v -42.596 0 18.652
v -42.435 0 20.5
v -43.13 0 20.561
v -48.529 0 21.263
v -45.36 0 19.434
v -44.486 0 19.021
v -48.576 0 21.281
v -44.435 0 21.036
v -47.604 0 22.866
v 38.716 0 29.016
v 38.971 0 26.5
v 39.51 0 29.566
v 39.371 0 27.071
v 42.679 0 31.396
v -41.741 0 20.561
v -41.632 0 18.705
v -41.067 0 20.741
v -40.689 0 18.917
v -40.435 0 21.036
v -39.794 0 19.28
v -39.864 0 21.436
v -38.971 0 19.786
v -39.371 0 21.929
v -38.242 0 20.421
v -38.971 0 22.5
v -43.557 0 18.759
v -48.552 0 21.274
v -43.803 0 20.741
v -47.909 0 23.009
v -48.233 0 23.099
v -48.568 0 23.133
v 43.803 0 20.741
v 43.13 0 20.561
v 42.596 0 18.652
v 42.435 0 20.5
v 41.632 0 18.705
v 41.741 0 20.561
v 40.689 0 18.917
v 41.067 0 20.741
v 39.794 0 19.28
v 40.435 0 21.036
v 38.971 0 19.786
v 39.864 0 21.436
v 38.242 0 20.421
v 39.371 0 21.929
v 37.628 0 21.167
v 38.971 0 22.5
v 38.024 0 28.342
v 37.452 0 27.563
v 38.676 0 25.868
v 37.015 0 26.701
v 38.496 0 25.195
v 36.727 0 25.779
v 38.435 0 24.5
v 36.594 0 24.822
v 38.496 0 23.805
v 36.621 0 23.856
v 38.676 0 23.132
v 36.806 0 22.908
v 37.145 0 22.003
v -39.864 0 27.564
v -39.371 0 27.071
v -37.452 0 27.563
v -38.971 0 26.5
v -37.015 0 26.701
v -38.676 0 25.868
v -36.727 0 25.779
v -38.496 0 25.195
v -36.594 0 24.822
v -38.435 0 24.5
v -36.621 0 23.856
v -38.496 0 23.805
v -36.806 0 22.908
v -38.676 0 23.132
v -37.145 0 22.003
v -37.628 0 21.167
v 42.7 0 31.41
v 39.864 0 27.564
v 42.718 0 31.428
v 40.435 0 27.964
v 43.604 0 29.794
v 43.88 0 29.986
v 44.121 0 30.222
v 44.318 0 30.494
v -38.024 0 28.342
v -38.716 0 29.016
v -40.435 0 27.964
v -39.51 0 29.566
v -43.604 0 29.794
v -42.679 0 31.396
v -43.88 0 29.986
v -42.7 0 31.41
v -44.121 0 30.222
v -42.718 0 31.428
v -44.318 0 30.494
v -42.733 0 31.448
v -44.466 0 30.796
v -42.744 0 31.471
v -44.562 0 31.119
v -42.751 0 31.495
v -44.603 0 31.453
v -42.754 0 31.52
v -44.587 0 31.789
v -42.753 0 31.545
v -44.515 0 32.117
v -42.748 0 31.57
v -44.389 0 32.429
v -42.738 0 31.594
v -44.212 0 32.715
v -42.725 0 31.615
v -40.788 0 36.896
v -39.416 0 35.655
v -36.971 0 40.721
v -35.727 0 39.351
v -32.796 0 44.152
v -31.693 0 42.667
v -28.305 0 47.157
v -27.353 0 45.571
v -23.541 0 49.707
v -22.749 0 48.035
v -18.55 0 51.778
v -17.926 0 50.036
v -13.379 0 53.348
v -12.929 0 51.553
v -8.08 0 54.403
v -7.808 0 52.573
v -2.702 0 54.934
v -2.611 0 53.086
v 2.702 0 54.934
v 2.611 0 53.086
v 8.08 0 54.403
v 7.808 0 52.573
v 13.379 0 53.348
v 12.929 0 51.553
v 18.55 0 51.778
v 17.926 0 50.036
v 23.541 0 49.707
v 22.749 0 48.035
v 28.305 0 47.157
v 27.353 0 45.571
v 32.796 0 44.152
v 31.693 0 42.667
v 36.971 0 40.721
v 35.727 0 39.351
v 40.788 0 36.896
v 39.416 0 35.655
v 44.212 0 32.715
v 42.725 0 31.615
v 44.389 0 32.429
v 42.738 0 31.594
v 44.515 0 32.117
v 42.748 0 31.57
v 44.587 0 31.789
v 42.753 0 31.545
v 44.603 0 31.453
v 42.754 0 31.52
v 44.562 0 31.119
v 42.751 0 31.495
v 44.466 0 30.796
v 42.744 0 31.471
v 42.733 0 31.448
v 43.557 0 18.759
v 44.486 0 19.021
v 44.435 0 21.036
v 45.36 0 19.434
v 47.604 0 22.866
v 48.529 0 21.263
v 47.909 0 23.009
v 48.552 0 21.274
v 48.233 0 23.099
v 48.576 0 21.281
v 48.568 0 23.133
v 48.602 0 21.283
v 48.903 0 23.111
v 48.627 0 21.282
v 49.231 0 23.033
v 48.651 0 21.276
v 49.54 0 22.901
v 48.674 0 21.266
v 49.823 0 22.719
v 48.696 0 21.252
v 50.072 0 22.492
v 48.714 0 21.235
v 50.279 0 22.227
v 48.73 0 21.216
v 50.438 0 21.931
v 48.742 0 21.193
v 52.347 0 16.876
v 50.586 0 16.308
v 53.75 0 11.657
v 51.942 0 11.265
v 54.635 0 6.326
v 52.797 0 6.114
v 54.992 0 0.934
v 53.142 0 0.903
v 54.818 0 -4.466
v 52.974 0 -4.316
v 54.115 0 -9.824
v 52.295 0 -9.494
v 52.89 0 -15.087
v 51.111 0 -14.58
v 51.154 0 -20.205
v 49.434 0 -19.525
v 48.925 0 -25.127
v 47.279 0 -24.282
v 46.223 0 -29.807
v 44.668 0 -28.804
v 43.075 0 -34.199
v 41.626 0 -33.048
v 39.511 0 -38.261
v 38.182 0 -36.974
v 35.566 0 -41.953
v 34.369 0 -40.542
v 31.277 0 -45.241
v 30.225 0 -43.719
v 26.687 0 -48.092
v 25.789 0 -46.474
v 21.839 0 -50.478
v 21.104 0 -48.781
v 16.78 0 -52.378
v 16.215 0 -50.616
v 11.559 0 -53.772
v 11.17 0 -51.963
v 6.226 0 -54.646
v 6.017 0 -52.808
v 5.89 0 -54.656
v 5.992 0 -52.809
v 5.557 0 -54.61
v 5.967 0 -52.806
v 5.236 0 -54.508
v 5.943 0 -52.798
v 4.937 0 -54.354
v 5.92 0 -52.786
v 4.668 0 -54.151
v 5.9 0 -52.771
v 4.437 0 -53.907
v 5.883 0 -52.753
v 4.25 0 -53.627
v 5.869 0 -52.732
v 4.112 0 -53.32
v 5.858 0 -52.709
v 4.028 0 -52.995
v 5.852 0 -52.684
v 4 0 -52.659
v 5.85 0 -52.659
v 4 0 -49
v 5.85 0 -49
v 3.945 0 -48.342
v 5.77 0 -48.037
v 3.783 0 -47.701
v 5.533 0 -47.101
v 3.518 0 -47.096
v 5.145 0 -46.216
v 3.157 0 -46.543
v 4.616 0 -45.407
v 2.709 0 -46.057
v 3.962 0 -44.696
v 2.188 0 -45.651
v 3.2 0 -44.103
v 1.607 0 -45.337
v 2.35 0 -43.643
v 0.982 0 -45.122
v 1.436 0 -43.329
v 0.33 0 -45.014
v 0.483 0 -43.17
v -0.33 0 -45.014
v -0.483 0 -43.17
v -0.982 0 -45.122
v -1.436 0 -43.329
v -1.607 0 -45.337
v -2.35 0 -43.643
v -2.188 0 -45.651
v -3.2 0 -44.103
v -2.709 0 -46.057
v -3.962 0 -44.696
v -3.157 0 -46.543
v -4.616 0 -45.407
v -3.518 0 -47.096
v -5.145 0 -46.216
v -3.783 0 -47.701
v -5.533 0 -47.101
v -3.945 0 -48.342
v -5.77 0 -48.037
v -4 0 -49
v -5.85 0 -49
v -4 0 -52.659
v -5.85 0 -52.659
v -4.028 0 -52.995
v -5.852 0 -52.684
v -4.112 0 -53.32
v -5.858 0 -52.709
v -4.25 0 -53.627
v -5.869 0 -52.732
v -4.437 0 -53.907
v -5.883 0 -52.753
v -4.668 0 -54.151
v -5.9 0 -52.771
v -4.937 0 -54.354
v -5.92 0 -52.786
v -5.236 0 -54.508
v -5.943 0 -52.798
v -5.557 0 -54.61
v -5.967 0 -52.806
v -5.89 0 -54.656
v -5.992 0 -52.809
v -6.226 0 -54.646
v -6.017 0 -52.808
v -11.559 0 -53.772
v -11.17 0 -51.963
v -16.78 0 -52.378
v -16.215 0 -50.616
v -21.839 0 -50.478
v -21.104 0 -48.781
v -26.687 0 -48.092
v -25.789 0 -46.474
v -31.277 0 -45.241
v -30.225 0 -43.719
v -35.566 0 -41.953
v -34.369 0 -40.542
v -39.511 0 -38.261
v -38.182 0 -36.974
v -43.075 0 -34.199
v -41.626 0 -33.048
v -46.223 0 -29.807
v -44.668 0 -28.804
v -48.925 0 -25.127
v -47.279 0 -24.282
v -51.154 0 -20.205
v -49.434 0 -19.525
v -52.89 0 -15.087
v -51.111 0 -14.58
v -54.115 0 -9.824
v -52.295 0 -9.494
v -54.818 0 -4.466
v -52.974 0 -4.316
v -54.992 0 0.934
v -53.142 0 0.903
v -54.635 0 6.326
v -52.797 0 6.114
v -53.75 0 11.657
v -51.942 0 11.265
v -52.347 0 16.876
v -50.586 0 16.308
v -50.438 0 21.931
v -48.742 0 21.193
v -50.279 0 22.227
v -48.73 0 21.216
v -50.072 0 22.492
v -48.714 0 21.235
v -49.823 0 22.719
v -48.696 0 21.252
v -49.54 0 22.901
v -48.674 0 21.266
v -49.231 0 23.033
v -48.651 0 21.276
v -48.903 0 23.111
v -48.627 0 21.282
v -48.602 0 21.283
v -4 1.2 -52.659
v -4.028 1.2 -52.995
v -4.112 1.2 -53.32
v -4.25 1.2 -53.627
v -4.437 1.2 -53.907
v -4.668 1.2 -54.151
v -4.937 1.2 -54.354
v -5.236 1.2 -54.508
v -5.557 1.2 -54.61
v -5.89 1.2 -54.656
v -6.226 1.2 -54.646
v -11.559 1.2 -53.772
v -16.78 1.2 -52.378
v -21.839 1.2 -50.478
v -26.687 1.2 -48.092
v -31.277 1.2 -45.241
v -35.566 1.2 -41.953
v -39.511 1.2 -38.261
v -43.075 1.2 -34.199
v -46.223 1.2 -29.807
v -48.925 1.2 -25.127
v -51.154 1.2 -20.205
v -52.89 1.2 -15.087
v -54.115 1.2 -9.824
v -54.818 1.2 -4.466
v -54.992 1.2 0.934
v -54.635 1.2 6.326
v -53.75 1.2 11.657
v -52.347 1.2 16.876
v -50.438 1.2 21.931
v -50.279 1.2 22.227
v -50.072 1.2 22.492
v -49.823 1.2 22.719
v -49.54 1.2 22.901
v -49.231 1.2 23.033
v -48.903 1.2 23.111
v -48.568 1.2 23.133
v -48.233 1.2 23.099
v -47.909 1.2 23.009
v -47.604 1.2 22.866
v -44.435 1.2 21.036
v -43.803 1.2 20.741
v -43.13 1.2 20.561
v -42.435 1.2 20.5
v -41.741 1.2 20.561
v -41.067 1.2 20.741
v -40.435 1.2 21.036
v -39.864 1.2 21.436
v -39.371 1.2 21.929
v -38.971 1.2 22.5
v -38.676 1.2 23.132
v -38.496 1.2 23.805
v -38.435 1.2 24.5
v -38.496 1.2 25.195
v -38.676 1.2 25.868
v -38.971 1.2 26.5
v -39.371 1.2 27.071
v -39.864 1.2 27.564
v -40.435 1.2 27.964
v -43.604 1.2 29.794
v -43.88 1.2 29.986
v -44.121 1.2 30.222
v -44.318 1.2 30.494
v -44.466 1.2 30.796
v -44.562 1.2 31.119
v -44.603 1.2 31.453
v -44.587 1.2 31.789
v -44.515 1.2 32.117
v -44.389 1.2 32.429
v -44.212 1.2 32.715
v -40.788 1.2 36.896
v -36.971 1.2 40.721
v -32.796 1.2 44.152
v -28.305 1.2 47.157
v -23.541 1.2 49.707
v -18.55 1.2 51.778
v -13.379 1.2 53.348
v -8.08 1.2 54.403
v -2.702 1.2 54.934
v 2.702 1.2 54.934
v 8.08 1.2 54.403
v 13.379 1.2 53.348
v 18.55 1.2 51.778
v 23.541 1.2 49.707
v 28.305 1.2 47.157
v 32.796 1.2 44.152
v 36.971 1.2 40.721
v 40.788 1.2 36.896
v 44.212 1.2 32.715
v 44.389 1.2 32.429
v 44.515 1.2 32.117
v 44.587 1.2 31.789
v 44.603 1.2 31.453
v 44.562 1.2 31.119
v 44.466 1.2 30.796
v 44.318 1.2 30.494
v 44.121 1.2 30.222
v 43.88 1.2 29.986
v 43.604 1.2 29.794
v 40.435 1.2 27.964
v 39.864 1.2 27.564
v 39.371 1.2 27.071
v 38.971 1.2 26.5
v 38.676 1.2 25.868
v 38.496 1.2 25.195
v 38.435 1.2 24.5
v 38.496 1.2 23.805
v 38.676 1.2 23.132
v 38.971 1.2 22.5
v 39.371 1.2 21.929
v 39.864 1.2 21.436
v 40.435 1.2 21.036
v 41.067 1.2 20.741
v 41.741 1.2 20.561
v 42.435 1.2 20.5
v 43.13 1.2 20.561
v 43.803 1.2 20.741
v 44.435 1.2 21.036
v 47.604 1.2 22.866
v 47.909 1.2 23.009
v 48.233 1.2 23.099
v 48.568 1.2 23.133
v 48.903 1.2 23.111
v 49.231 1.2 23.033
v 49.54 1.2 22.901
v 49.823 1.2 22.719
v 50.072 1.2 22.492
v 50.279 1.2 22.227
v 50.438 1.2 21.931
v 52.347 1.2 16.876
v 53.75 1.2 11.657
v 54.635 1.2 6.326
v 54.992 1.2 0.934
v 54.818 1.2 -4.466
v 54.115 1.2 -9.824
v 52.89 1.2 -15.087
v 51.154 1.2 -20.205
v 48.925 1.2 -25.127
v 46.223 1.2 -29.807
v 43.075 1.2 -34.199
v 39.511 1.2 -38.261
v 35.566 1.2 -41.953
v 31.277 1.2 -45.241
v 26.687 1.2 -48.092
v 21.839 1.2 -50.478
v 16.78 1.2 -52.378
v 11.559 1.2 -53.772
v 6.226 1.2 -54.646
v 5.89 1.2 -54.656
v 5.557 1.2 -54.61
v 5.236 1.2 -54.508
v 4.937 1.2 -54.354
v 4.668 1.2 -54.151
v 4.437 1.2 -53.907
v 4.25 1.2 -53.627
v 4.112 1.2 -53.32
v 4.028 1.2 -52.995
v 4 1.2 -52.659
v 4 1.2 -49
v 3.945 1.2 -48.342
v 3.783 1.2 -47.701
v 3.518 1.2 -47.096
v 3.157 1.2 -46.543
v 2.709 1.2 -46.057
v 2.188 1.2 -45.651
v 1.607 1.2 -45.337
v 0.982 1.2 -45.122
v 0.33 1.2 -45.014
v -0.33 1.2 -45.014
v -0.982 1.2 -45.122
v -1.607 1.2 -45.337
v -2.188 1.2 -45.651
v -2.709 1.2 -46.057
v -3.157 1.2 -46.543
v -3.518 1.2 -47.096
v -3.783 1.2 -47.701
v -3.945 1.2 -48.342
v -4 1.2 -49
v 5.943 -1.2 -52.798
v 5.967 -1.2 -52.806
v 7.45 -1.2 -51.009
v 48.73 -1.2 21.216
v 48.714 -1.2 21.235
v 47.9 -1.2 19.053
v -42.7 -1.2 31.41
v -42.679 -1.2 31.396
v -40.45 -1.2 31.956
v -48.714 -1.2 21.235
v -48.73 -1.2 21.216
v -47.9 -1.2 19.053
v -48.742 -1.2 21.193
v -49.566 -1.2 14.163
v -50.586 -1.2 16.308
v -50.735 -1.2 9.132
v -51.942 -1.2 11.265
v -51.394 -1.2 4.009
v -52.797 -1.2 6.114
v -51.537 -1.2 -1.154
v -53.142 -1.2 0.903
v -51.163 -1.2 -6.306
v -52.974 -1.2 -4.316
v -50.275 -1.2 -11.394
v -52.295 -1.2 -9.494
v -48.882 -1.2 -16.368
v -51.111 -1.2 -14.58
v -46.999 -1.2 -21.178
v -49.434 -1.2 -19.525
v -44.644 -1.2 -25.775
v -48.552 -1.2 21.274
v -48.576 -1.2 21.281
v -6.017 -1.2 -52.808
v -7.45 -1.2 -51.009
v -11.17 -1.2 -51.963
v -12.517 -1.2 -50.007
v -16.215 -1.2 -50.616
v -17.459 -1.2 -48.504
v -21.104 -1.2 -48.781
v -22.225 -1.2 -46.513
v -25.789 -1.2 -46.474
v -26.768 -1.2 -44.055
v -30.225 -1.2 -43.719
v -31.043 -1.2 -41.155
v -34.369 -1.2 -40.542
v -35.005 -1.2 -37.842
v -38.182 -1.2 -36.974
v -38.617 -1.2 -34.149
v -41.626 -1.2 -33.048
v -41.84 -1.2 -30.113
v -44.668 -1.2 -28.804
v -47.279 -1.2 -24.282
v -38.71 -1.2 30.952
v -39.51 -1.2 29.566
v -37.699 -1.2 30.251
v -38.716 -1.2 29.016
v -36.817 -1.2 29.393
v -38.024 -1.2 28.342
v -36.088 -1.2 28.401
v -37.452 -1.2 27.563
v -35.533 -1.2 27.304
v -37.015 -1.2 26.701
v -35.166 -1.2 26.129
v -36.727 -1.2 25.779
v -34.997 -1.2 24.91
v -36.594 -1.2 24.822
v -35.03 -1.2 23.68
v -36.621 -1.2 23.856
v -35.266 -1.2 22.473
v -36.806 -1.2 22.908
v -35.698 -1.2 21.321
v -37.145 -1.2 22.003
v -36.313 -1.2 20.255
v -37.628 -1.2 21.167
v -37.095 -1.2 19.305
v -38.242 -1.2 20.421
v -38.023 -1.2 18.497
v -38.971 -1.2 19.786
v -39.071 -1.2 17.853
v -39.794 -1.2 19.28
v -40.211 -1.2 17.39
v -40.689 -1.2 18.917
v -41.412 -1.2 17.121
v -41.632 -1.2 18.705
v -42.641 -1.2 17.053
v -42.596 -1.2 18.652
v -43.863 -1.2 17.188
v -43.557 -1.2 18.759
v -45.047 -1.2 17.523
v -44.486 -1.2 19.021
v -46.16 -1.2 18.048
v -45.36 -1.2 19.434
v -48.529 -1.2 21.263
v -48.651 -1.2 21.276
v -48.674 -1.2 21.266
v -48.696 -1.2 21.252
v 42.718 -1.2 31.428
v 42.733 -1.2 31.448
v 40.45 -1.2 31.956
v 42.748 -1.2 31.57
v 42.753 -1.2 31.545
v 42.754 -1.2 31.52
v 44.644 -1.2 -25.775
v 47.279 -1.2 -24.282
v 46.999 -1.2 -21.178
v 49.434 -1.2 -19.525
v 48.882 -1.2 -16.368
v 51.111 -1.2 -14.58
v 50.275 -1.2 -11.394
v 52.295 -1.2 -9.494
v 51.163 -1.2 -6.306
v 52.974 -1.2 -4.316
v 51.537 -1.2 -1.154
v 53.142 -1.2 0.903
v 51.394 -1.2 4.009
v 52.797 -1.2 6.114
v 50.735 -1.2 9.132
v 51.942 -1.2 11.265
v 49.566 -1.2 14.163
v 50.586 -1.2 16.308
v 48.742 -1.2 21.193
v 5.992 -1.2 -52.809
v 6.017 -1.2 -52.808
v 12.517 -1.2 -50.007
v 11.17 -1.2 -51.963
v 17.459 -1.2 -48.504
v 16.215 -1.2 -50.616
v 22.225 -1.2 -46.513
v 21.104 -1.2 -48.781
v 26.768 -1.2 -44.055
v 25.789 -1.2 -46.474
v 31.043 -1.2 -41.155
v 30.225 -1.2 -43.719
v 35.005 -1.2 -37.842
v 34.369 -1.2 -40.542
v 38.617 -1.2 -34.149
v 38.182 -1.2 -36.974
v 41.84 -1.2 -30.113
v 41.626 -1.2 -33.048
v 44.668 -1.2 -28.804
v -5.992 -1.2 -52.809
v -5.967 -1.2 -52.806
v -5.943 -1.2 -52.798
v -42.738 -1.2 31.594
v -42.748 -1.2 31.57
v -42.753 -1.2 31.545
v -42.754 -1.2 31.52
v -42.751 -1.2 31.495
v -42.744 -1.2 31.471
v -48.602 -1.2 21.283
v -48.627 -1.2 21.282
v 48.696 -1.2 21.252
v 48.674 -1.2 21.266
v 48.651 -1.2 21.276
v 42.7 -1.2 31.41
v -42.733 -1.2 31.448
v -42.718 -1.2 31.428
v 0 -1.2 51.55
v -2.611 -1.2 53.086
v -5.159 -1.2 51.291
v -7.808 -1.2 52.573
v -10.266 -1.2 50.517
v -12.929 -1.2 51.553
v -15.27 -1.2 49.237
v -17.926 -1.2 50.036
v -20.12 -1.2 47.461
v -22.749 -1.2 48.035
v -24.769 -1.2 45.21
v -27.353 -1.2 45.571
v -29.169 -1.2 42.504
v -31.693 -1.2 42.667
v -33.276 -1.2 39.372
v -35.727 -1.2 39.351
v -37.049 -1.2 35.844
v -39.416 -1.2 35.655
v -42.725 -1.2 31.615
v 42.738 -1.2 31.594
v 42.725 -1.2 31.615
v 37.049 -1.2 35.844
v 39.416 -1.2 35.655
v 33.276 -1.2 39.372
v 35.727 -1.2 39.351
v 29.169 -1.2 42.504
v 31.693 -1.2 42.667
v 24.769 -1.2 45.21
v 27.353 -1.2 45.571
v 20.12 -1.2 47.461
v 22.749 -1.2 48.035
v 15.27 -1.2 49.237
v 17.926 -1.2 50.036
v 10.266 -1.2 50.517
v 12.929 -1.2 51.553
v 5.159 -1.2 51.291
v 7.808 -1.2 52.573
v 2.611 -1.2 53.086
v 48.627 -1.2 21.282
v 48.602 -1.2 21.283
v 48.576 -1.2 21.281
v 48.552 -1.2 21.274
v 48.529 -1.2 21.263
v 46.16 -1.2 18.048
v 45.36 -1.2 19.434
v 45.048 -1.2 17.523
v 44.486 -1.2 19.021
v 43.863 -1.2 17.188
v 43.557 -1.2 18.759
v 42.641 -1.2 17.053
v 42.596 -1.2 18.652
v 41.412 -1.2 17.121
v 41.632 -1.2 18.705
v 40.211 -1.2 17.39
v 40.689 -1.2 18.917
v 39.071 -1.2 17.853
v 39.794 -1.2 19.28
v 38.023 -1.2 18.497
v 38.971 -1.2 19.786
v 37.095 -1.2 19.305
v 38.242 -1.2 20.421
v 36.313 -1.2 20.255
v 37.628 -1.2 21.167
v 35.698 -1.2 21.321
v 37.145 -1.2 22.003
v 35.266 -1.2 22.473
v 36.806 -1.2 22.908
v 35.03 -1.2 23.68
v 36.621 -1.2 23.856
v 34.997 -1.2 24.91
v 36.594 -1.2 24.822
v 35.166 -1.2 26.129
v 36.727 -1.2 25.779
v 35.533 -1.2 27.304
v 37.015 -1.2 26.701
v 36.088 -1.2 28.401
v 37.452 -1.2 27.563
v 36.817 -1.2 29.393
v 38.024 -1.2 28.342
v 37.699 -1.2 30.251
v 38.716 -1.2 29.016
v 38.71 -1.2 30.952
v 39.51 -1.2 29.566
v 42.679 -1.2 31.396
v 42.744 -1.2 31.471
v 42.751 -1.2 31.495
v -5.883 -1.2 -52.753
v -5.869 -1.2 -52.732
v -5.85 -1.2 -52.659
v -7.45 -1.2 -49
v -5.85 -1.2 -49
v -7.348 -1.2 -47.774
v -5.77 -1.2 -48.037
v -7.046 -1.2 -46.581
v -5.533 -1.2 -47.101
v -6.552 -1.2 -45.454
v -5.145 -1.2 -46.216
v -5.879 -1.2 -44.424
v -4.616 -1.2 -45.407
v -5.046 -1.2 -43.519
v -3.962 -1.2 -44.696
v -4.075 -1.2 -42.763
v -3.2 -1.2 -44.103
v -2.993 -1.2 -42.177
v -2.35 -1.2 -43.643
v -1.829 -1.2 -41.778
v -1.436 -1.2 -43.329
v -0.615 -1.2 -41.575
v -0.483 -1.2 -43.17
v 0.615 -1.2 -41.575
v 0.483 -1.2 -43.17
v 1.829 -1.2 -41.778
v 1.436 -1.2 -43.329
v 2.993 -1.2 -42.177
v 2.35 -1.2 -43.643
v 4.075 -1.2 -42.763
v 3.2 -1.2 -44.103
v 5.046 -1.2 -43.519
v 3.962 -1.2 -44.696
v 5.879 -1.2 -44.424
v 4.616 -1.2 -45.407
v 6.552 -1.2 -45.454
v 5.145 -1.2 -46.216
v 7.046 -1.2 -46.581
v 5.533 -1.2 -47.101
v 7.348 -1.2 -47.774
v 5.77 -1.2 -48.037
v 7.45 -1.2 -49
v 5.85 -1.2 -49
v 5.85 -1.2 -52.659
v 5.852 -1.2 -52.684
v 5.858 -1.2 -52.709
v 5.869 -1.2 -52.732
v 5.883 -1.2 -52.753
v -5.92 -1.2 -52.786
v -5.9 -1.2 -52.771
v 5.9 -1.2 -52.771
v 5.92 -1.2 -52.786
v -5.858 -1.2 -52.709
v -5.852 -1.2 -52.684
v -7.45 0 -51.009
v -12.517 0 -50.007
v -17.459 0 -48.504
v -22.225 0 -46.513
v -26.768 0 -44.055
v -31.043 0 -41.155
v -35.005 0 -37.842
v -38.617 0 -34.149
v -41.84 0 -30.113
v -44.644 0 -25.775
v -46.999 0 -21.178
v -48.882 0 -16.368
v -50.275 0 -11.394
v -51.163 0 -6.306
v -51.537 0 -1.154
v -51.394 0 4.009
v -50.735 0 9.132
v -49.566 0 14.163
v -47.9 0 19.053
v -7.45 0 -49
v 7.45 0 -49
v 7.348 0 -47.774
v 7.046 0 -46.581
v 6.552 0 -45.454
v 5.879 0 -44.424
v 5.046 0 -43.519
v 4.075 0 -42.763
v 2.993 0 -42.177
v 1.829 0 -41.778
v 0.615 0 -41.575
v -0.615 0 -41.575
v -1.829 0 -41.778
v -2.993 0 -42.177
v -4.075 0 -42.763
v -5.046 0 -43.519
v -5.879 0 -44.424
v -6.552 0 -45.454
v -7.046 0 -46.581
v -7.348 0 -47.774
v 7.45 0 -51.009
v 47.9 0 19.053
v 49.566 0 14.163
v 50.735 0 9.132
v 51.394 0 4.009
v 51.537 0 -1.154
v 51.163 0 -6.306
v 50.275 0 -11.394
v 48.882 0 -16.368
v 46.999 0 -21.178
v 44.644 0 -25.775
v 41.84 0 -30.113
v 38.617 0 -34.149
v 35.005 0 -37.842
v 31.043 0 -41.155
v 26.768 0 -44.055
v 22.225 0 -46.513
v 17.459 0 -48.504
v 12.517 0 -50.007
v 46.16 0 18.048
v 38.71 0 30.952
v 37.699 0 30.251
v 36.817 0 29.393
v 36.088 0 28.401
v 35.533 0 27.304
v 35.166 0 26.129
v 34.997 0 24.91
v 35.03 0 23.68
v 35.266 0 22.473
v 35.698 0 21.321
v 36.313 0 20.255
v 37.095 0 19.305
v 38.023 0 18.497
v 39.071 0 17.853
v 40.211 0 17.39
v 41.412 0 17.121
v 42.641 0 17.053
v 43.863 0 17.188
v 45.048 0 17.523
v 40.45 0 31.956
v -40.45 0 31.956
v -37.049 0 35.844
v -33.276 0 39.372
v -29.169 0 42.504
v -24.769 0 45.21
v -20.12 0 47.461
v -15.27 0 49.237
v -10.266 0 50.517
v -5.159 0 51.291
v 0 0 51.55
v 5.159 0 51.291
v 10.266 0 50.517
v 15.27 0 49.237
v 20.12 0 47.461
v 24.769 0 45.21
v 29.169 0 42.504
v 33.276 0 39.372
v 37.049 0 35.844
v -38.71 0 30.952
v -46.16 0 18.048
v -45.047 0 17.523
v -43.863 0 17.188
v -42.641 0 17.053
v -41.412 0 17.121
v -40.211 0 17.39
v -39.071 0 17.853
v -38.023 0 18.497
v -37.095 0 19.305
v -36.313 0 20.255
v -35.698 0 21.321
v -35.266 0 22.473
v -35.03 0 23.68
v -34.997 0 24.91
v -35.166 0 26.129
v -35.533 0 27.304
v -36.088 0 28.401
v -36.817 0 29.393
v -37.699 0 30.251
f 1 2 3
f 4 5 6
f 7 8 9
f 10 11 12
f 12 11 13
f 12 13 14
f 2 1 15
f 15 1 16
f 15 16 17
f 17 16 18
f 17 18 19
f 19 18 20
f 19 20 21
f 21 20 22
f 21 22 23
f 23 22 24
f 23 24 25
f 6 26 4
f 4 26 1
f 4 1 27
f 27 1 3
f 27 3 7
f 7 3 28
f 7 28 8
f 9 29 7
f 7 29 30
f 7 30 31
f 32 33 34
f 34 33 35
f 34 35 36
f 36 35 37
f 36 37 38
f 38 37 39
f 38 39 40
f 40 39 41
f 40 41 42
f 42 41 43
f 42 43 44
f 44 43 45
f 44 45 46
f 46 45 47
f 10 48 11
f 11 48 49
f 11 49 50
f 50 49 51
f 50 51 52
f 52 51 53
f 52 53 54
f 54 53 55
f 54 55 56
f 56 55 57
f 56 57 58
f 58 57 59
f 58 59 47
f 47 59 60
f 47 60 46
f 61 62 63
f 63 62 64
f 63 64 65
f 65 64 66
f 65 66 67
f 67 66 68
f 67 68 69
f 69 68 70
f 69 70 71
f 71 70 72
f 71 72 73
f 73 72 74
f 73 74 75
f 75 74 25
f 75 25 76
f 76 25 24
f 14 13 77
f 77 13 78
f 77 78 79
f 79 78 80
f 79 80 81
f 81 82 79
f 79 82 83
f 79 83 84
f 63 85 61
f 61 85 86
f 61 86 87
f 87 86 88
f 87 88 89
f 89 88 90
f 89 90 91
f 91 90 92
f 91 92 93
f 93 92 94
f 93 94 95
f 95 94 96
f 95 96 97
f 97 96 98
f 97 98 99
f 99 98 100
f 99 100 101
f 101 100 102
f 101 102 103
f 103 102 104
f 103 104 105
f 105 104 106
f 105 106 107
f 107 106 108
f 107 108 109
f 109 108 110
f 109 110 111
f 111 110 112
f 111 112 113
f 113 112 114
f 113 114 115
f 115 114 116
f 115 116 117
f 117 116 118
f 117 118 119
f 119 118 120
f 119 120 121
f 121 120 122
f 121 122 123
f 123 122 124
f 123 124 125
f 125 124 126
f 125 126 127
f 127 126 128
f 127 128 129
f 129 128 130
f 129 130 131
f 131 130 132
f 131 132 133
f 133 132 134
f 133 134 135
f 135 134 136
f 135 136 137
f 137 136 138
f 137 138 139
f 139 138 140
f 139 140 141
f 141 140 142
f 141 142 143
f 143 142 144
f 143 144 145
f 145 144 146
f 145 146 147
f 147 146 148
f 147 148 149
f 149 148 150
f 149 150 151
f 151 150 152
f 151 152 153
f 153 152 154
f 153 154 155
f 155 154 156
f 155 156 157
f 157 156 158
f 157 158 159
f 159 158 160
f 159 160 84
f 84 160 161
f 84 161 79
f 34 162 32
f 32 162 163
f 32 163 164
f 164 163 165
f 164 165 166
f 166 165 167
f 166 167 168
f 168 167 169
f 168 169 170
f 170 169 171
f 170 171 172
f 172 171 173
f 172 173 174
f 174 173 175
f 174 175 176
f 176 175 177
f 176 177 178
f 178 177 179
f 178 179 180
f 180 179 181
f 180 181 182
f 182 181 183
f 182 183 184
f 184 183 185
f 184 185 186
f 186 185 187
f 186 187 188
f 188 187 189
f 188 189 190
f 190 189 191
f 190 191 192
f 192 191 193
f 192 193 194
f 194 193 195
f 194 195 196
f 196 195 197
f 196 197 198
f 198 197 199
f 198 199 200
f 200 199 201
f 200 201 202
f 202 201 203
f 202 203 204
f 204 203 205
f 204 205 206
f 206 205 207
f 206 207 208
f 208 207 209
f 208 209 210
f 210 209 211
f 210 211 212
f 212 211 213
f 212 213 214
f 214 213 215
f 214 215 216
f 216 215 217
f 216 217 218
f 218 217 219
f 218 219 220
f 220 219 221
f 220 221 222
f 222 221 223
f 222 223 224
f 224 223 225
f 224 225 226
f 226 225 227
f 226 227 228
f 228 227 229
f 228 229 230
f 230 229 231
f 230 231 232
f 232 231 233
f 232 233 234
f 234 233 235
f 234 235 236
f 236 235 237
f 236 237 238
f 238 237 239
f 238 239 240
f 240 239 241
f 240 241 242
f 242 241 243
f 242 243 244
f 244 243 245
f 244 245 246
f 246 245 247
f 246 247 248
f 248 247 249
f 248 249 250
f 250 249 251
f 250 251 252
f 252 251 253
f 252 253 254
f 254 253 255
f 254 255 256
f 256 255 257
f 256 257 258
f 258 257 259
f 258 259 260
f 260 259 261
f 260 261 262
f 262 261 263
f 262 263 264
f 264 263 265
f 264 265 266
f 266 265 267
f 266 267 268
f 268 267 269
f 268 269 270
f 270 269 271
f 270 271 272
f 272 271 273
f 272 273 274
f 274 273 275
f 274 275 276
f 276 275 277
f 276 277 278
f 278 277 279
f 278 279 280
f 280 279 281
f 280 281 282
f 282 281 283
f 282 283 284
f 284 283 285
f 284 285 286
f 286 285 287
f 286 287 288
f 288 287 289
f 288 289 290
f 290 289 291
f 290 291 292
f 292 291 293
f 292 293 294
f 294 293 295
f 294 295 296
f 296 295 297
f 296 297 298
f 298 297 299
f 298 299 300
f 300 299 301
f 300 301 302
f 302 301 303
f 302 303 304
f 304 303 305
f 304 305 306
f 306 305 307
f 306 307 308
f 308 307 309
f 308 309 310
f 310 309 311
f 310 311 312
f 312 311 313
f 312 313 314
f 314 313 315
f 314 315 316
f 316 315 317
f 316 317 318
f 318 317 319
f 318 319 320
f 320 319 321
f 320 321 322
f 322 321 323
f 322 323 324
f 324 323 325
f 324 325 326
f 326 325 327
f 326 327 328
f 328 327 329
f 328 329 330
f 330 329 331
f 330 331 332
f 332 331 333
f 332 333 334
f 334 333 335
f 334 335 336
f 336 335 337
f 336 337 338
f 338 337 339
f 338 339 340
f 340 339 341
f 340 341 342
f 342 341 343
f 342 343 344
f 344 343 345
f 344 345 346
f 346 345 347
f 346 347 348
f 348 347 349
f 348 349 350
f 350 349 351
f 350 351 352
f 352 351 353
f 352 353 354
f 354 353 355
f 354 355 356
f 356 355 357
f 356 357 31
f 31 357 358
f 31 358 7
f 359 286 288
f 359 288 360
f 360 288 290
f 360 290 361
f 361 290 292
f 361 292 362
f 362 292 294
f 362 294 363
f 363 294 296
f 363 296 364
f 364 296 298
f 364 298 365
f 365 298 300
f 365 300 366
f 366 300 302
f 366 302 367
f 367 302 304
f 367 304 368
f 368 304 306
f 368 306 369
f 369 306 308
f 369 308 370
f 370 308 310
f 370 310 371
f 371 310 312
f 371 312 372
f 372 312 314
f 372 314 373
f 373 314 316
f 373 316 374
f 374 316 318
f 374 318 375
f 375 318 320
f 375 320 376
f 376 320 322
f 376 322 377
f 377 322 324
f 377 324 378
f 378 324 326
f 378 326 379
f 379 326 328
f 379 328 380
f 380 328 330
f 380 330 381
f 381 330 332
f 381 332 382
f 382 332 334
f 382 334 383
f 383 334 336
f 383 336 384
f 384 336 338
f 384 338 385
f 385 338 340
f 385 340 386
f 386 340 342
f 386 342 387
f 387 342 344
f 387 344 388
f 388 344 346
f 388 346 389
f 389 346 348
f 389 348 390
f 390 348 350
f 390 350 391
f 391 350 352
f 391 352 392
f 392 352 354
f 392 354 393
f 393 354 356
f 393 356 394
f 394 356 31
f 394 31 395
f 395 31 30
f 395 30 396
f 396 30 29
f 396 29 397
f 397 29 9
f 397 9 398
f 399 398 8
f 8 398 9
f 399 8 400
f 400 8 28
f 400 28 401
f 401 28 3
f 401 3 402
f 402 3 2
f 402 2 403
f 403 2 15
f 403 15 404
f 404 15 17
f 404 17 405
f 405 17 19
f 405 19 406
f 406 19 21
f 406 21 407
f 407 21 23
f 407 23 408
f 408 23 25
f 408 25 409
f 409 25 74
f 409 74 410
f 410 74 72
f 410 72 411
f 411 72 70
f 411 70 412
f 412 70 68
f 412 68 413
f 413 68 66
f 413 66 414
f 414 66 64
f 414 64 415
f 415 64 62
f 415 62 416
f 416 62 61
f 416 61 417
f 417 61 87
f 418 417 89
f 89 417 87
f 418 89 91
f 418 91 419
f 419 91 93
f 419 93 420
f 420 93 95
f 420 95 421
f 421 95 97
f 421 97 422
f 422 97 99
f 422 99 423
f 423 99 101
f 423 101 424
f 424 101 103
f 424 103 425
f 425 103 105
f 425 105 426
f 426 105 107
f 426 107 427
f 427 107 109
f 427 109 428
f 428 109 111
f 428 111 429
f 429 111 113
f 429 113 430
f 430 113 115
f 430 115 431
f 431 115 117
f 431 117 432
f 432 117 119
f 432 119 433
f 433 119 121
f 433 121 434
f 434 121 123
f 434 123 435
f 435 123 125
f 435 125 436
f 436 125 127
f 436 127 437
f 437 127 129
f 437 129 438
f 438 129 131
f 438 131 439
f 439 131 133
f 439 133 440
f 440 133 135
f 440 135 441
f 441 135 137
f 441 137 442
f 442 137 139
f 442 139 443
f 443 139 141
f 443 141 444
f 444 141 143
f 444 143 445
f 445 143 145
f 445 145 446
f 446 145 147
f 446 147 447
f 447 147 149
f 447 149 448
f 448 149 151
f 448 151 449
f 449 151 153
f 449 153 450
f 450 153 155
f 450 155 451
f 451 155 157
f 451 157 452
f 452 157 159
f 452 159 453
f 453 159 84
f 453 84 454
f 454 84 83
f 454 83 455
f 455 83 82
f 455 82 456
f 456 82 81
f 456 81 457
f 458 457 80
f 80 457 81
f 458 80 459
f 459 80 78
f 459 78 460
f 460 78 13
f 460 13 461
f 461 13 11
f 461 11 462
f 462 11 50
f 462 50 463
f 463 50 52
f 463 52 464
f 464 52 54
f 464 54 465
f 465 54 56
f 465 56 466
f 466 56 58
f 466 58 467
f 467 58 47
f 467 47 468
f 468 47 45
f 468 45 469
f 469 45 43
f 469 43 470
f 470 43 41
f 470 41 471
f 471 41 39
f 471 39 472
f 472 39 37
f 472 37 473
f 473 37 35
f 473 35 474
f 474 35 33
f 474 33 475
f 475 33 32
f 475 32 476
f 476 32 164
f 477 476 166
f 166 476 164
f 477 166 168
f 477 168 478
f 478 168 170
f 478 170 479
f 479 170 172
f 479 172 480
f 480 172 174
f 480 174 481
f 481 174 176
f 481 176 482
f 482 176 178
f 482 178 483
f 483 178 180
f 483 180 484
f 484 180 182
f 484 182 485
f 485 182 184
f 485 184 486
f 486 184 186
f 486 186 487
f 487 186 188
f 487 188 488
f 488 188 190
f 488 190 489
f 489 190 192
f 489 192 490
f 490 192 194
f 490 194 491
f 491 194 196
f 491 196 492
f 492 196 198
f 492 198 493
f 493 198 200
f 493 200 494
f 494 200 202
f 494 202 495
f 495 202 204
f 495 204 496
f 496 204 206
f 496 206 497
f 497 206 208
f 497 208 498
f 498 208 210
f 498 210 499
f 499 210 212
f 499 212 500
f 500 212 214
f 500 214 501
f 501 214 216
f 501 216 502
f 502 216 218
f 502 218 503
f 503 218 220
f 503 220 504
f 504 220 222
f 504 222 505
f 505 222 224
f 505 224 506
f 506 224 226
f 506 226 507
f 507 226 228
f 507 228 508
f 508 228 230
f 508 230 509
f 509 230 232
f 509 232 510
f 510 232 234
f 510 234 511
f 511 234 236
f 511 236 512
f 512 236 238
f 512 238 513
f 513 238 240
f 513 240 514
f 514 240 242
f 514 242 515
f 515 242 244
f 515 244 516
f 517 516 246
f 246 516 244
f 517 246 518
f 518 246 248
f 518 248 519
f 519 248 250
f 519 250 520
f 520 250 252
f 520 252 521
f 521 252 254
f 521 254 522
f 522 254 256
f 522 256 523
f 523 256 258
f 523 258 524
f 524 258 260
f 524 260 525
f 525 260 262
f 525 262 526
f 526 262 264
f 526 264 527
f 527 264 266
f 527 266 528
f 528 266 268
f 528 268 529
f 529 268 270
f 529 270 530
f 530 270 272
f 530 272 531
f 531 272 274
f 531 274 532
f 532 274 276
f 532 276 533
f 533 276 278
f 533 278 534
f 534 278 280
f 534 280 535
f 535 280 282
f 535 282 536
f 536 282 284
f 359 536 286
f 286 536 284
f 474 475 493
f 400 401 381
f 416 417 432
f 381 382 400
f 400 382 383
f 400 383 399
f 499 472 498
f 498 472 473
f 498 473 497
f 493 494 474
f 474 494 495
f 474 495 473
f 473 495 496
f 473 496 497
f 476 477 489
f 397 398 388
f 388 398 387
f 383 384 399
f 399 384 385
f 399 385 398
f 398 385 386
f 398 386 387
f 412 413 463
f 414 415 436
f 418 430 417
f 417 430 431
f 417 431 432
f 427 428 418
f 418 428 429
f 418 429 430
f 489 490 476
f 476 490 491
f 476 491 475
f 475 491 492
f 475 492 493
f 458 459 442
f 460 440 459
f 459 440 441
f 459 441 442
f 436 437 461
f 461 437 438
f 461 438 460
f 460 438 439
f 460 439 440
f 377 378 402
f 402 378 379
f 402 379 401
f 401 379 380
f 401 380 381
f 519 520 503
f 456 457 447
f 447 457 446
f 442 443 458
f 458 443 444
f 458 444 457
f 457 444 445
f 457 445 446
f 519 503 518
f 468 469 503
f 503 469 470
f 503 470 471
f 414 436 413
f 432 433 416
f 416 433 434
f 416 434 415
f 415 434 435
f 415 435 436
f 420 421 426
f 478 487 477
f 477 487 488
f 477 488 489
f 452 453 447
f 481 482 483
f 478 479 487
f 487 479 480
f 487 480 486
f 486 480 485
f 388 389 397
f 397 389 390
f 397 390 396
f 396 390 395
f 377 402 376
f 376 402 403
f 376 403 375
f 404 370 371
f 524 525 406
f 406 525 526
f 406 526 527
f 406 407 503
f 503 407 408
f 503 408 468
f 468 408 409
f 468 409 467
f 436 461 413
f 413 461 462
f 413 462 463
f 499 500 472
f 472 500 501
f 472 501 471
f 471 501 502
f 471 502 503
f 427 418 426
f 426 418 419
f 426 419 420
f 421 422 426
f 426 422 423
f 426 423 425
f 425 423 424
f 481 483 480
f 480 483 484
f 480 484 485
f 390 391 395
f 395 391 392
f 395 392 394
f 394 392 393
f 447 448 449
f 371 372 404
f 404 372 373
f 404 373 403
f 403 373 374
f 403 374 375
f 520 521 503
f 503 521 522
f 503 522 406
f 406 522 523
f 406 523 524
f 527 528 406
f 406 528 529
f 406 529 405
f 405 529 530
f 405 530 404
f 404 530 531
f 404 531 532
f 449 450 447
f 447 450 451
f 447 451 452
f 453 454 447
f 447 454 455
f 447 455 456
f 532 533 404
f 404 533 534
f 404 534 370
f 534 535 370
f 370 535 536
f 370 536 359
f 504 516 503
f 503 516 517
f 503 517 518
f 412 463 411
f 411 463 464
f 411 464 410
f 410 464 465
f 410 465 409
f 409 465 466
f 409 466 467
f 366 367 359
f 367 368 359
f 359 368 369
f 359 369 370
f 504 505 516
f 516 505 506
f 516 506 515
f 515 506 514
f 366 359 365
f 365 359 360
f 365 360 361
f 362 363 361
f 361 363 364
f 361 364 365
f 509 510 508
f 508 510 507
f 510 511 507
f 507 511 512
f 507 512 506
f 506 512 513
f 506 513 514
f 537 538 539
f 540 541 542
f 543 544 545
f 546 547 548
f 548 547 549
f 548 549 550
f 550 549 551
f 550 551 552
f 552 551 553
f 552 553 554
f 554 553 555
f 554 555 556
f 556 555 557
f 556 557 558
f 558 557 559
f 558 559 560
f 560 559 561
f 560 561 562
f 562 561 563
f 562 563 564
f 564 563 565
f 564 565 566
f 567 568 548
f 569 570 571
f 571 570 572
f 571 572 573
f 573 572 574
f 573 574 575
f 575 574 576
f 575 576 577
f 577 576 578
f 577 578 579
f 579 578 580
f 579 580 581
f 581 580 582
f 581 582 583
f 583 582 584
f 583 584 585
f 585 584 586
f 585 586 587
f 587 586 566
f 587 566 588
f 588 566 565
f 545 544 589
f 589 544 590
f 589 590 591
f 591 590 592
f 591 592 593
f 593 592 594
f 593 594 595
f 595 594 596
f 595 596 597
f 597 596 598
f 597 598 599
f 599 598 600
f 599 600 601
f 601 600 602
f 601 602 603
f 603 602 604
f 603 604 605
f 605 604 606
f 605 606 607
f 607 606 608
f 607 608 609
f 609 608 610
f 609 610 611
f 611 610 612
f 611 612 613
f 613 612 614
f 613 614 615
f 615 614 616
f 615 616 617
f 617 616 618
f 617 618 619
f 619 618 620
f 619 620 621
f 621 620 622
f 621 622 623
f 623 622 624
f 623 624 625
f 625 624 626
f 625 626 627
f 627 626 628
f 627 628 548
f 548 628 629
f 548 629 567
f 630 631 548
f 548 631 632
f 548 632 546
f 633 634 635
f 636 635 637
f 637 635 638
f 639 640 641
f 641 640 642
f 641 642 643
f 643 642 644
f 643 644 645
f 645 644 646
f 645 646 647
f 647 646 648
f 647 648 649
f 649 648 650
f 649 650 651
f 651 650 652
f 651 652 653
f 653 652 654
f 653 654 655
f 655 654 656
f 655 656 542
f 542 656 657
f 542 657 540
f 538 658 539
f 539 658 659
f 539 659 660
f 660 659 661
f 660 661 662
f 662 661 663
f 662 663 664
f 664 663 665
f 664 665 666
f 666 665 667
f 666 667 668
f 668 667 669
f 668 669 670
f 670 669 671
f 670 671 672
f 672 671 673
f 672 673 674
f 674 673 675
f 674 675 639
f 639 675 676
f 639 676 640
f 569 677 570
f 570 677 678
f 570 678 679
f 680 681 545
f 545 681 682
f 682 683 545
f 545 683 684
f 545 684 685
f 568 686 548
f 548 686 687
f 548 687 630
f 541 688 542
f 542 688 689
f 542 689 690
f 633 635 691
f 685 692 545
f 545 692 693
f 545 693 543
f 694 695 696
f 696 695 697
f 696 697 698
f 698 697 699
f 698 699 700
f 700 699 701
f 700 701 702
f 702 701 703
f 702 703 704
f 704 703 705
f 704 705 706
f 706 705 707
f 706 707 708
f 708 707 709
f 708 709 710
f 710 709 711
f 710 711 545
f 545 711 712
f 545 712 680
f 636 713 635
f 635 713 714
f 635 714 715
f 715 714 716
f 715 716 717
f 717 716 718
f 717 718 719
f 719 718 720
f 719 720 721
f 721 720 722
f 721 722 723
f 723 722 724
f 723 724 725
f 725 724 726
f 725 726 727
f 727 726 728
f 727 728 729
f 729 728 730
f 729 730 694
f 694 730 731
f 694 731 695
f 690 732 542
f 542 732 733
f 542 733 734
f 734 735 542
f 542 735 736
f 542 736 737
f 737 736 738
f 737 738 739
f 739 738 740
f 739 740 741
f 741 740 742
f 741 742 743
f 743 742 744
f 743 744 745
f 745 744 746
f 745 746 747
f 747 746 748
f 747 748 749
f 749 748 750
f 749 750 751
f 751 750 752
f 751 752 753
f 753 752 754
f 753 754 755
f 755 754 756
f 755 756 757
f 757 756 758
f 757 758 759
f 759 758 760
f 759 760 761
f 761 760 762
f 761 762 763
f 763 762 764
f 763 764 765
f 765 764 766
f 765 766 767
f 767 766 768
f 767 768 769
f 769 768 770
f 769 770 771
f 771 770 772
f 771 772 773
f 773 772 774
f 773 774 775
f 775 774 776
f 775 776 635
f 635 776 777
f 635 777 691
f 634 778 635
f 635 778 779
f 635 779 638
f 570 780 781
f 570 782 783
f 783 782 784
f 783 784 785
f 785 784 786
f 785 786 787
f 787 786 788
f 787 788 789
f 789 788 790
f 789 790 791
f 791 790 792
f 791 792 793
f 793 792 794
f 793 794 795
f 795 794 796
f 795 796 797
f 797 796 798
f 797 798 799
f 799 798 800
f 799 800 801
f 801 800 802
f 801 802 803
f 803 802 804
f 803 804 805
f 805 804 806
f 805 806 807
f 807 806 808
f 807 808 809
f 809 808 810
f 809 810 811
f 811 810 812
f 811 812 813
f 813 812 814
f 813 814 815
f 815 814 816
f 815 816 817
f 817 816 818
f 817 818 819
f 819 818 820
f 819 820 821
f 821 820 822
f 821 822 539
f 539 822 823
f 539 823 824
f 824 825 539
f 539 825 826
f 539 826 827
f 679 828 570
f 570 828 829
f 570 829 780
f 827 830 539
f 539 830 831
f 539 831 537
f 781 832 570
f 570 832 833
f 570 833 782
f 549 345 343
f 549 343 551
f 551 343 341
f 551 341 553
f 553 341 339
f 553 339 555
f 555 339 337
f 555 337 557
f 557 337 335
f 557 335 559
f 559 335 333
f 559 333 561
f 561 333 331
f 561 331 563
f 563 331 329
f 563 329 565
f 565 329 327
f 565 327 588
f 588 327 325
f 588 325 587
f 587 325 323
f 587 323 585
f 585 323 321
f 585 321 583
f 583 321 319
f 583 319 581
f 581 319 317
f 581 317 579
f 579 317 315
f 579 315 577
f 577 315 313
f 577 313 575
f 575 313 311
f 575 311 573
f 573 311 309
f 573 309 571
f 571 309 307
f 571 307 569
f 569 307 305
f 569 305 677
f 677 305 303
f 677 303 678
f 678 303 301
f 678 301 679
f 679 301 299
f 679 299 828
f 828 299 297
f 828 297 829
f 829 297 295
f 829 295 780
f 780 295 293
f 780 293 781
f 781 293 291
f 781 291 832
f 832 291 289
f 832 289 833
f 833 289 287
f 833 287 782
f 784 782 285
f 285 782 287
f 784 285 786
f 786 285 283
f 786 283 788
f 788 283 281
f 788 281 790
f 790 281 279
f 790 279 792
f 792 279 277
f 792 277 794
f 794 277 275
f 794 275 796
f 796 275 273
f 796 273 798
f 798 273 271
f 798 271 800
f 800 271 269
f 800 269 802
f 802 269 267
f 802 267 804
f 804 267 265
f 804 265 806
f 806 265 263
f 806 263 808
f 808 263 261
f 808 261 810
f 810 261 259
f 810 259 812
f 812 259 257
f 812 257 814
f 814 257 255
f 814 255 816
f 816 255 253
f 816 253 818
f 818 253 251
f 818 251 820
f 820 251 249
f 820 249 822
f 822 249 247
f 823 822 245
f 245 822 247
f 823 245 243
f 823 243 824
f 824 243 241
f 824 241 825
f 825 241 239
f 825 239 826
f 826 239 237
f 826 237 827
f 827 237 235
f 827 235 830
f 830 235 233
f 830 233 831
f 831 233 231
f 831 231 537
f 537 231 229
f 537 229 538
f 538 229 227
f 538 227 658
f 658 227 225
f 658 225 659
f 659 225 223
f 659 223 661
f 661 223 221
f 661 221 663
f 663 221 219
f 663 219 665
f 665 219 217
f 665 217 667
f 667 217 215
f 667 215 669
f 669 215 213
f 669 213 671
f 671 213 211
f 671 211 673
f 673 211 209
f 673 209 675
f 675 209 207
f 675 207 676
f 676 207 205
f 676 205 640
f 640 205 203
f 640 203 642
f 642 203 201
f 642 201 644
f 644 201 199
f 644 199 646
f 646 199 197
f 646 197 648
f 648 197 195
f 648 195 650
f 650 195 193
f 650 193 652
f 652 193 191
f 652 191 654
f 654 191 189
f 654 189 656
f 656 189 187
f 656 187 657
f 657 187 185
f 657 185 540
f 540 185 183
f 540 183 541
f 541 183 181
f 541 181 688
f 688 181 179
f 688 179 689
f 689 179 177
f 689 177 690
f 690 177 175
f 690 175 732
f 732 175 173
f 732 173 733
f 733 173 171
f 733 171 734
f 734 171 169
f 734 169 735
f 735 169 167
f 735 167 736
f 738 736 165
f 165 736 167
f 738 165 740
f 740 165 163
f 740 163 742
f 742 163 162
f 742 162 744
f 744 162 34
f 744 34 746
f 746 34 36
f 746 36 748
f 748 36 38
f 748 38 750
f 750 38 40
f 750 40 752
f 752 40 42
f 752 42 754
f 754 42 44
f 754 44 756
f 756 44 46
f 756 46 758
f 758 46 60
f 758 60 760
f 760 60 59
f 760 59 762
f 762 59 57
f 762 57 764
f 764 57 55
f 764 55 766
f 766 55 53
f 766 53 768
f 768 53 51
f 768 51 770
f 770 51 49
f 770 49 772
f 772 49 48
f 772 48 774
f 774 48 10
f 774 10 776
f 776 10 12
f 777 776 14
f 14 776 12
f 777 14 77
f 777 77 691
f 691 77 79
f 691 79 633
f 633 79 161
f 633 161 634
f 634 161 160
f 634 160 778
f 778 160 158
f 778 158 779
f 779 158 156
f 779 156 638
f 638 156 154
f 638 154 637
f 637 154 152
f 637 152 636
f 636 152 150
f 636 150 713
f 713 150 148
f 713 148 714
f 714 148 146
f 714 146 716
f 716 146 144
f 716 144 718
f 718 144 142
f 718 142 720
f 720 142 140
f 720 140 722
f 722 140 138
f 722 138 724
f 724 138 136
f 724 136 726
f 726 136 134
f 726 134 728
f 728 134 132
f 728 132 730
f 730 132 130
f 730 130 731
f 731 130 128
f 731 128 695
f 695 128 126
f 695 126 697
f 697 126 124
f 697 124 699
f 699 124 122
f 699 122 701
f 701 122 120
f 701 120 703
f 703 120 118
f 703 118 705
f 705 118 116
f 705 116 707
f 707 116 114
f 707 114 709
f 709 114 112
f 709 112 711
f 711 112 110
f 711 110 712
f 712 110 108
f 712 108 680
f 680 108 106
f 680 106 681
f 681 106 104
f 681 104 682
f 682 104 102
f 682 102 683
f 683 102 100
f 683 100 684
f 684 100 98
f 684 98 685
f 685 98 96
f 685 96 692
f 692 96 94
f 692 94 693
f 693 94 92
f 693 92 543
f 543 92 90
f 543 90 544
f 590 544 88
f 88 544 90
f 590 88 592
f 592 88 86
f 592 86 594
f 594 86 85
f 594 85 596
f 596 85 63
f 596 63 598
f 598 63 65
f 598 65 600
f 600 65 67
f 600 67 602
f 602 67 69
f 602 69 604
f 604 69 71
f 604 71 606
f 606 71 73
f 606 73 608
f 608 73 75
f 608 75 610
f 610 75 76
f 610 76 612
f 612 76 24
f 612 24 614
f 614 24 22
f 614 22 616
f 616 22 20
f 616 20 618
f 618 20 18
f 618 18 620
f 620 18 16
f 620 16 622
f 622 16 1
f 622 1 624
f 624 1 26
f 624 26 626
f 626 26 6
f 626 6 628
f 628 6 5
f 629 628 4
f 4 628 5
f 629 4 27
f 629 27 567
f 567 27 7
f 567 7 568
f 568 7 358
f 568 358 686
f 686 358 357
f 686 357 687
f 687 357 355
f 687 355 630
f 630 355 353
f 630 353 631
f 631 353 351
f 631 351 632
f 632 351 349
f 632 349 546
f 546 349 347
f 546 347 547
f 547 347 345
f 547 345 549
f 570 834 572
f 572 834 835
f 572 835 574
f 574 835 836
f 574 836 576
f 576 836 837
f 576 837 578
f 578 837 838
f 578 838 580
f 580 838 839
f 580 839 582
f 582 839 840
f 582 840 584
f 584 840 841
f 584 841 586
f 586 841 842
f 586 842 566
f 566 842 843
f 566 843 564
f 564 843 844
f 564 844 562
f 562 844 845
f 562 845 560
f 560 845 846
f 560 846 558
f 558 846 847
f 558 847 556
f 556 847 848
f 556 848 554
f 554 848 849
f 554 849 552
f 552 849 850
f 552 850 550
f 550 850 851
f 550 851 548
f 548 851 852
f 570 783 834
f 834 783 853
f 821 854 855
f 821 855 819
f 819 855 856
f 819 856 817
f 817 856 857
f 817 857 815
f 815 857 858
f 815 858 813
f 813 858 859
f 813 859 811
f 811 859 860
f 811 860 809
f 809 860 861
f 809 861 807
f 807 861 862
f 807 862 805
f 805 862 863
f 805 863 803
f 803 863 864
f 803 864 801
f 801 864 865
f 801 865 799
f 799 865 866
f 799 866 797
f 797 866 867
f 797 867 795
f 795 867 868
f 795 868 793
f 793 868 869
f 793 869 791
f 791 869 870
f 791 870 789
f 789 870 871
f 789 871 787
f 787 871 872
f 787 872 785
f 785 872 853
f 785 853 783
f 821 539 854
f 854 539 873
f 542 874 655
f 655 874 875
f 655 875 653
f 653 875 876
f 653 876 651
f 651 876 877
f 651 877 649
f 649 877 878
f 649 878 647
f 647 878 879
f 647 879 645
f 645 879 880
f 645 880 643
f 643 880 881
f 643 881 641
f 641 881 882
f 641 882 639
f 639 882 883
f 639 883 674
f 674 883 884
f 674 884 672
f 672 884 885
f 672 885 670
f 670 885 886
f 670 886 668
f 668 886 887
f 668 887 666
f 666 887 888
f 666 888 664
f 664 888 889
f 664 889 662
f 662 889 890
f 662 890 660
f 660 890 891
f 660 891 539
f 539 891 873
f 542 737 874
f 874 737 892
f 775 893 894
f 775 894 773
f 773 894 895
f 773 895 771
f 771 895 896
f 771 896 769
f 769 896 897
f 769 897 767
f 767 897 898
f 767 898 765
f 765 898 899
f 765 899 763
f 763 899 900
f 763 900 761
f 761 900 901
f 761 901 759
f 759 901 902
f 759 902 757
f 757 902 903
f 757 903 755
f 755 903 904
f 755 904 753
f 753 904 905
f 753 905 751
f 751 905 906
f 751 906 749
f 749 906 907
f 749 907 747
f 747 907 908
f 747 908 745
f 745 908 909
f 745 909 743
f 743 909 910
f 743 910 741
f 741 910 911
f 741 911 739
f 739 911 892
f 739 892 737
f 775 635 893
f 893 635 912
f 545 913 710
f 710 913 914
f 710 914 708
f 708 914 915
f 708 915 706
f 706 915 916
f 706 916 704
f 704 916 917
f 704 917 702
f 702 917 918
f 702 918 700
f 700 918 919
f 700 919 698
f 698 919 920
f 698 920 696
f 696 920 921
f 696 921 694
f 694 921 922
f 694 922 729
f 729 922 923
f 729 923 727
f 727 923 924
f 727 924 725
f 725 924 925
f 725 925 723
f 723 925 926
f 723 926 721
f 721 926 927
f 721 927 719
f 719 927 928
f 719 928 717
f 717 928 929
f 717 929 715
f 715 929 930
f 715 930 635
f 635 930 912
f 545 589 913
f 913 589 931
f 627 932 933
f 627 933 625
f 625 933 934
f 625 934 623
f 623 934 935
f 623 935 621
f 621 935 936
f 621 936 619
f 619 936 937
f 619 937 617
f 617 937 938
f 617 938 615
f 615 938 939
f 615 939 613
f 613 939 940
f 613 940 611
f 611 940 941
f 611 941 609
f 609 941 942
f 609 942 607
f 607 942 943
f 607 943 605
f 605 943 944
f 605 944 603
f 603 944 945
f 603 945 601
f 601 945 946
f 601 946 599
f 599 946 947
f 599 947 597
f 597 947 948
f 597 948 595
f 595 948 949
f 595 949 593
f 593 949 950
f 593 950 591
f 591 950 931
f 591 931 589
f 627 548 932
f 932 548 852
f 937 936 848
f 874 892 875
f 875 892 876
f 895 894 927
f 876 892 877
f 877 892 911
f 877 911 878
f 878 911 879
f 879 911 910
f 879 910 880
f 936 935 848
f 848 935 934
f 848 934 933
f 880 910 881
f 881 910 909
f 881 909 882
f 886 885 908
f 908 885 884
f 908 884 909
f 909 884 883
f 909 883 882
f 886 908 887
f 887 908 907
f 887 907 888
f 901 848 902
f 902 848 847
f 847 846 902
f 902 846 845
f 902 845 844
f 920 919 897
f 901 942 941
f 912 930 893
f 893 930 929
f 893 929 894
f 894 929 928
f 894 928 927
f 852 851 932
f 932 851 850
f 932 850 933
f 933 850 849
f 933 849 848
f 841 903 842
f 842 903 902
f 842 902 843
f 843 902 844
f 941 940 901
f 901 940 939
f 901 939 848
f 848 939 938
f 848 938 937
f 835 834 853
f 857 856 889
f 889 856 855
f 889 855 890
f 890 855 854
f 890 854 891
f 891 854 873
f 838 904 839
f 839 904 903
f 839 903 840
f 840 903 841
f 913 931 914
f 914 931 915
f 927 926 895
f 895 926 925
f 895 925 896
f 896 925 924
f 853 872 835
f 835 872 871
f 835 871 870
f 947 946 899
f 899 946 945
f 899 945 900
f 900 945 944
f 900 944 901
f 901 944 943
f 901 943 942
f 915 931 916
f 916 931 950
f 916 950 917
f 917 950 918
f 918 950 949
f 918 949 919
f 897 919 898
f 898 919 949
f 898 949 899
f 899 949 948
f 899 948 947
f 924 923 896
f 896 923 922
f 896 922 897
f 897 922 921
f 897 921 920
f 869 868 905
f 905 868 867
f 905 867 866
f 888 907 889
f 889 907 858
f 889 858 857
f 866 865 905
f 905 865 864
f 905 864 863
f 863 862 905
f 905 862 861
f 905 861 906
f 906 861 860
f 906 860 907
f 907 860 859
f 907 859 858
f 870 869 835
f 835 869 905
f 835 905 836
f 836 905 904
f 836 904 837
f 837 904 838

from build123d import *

# Parameters (mm, degrees)
BOSS_EXTRUDE1_DEPTH = 1.2
EXTRUDE_THIN1_DEPTH = 1.2


with BuildPart() as part:
    # Sketch2 → Boss-Extrude1 (new body)
    with BuildSketch(Plane(origin=(0, 0, 0), x_dir=(1, 0, 0), z_dir=(0, 1, 0))):
        with BuildLine():
            Line((-4, 52.659282183), (-4, 49))
            ThreePointArc((-4, 49), (0, 45), (4, 49))
            Line((4, 49), (4, 52.659282183))
            ThreePointArc((4, 52.659282183), (4.668239922, 54.151399837), (6.226415094, 54.646424907))
            ThreePointArc((6.226415094, 54.646424907), (47.631397208, 27.5), (50.438399742, -21.930978807))
            ThreePointArc((50.438399742, -21.930978807), (49.23060787, -23.032885555), (47.604276115, -22.865539476))
            Line((47.604276115, -22.865539476), (44.435244785, -21.035898385))
            ThreePointArc((44.435244785, -21.035898385), (38.97114317, -22.5), (40.435244785, -27.964101615))
            Line((40.435244785, -27.964101615), (43.604276115, -29.793742707))
            ThreePointArc((43.604276115, -29.793742707), (44.562367948, -31.118514282), (44.211984648, -32.7154461))
            ThreePointArc((44.211984648, -32.7154461), (0, -55), (-44.211984648, -32.715446099))
            ThreePointArc((-44.211984648, -32.715446099), (-44.562367948, -31.118514282), (-43.604276115, -29.793742706))
            Line((-43.604276115, -29.793742706), (-40.435244785, -27.964101615))
            ThreePointArc((-40.435244785, -27.964101615), (-38.97114317, -22.5), (-44.435244785, -21.035898385))
            Line((-44.435244785, -21.035898385), (-47.604276115, -22.865539476))
            ThreePointArc((-47.604276115, -22.865539476), (-49.23060787, -23.032885555), (-50.438399742, -21.930978807))
            ThreePointArc((-50.438399742, -21.930978807), (-47.631397208, 27.5), (-6.226415094, 54.646424907))
            ThreePointArc((-6.226415094, 54.646424907), (-4.668239922, 54.151399837), (-4, 52.659282183))
        make_face()
    extrude(amount=BOSS_EXTRUDE1_DEPTH)

    # Sketch3 → Extrude-Thin1 (add)
    with BuildSketch(Plane.XZ):
        with BuildLine():
            ThreePointArc((-6.016981132, -52.808317887), (-5.900117994, -52.771191007), (-5.85, -52.659282183))
            Line((-5.85, -52.659282183), (-5.85, -49))
            ThreePointArc((-5.85, -49), (0, -43.15), (5.85, -49))
            Line((5.85, -49), (5.85, -52.659282183))
            ThreePointArc((5.85, -52.659282183), (5.900117994, -52.771191007), (6.016981132, -52.808317887))
            ThreePointArc((6.016981132, -52.808317887), (46.029250211, -26.575), (48.741835387, 21.193300429))
            ThreePointArc((48.741835387, 21.193300429), (48.651250997, 21.275943435), (48.529276115, 21.263392479))
            Line((48.529276115, 21.263392479), (45.360244785, 19.433751388))
            ThreePointArc((45.360244785, 19.433751388), (37.368996173, 21.575), (39.510244785, 29.566248612))
            Line((39.510244785, 29.566248612), (42.679276115, 31.395889704))
            ThreePointArc((42.679276115, 31.395889704), (42.751133003, 31.495247572), (42.724854255, 31.615017458))
            ThreePointArc((42.724854255, 31.615017458), (0, 53.15), (-42.724854255, 31.615017458))
            ThreePointArc((-42.724854255, 31.615017458), (-42.751133003, 31.495247572), (-42.679276115, 31.395889703))
            Line((-42.679276115, 31.395889703), (-39.510244785, 29.566248612))
            ThreePointArc((-39.510244785, 29.566248612), (-37.368996173, 21.575), (-45.360244785, 19.433751388))
            Line((-45.360244785, 19.433751388), (-48.529276115, 21.263392479))
            ThreePointArc((-48.529276115, 21.263392479), (-48.651250997, 21.275943435), (-48.741835387, 21.193300429))
            ThreePointArc((-48.741835387, 21.193300429), (-46.029250211, -26.575), (-6.016981132, -52.808317887))
        make_face()
        with BuildLine():
            Line((-7.45, -51.008822766), (-7.45, -49))
            ThreePointArc((-7.45, -49), (0, -41.55), (7.45, -49))
            Line((7.45, -49), (7.45, -51.008822766))
            ThreePointArc((7.45, -51.008822766), (44.643609565, -25.775), (47.899936333, 19.052522125))
            Line((47.899936333, 19.052522125), (46.160244785, 18.048110742))
            ThreePointArc((46.160244785, 18.048110742), (35.983355527, 20.775), (38.710244785, 30.951889258))
            Line((38.710244785, 30.951889258), (40.449936333, 31.956300641))
            ThreePointArc((40.449936333, 31.956300641), (0, 51.55), (-40.449936333, 31.956300641))
            Line((-40.449936333, 31.956300641), (-38.710244785, 30.951889258))
            ThreePointArc((-38.710244785, 30.951889258), (-35.983355527, 20.775), (-46.160244785, 18.048110742))
            Line((-46.160244785, 18.048110742), (-47.899936333, 19.052522125))
            ThreePointArc((-47.899936333, 19.052522125), (-44.643609565, -25.775), (-7.45, -51.008822766))
        make_face(mode=Mode.SUBTRACT)
    extrude(amount=EXTRUDE_THIN1_DEPTH)


solid = part.part
